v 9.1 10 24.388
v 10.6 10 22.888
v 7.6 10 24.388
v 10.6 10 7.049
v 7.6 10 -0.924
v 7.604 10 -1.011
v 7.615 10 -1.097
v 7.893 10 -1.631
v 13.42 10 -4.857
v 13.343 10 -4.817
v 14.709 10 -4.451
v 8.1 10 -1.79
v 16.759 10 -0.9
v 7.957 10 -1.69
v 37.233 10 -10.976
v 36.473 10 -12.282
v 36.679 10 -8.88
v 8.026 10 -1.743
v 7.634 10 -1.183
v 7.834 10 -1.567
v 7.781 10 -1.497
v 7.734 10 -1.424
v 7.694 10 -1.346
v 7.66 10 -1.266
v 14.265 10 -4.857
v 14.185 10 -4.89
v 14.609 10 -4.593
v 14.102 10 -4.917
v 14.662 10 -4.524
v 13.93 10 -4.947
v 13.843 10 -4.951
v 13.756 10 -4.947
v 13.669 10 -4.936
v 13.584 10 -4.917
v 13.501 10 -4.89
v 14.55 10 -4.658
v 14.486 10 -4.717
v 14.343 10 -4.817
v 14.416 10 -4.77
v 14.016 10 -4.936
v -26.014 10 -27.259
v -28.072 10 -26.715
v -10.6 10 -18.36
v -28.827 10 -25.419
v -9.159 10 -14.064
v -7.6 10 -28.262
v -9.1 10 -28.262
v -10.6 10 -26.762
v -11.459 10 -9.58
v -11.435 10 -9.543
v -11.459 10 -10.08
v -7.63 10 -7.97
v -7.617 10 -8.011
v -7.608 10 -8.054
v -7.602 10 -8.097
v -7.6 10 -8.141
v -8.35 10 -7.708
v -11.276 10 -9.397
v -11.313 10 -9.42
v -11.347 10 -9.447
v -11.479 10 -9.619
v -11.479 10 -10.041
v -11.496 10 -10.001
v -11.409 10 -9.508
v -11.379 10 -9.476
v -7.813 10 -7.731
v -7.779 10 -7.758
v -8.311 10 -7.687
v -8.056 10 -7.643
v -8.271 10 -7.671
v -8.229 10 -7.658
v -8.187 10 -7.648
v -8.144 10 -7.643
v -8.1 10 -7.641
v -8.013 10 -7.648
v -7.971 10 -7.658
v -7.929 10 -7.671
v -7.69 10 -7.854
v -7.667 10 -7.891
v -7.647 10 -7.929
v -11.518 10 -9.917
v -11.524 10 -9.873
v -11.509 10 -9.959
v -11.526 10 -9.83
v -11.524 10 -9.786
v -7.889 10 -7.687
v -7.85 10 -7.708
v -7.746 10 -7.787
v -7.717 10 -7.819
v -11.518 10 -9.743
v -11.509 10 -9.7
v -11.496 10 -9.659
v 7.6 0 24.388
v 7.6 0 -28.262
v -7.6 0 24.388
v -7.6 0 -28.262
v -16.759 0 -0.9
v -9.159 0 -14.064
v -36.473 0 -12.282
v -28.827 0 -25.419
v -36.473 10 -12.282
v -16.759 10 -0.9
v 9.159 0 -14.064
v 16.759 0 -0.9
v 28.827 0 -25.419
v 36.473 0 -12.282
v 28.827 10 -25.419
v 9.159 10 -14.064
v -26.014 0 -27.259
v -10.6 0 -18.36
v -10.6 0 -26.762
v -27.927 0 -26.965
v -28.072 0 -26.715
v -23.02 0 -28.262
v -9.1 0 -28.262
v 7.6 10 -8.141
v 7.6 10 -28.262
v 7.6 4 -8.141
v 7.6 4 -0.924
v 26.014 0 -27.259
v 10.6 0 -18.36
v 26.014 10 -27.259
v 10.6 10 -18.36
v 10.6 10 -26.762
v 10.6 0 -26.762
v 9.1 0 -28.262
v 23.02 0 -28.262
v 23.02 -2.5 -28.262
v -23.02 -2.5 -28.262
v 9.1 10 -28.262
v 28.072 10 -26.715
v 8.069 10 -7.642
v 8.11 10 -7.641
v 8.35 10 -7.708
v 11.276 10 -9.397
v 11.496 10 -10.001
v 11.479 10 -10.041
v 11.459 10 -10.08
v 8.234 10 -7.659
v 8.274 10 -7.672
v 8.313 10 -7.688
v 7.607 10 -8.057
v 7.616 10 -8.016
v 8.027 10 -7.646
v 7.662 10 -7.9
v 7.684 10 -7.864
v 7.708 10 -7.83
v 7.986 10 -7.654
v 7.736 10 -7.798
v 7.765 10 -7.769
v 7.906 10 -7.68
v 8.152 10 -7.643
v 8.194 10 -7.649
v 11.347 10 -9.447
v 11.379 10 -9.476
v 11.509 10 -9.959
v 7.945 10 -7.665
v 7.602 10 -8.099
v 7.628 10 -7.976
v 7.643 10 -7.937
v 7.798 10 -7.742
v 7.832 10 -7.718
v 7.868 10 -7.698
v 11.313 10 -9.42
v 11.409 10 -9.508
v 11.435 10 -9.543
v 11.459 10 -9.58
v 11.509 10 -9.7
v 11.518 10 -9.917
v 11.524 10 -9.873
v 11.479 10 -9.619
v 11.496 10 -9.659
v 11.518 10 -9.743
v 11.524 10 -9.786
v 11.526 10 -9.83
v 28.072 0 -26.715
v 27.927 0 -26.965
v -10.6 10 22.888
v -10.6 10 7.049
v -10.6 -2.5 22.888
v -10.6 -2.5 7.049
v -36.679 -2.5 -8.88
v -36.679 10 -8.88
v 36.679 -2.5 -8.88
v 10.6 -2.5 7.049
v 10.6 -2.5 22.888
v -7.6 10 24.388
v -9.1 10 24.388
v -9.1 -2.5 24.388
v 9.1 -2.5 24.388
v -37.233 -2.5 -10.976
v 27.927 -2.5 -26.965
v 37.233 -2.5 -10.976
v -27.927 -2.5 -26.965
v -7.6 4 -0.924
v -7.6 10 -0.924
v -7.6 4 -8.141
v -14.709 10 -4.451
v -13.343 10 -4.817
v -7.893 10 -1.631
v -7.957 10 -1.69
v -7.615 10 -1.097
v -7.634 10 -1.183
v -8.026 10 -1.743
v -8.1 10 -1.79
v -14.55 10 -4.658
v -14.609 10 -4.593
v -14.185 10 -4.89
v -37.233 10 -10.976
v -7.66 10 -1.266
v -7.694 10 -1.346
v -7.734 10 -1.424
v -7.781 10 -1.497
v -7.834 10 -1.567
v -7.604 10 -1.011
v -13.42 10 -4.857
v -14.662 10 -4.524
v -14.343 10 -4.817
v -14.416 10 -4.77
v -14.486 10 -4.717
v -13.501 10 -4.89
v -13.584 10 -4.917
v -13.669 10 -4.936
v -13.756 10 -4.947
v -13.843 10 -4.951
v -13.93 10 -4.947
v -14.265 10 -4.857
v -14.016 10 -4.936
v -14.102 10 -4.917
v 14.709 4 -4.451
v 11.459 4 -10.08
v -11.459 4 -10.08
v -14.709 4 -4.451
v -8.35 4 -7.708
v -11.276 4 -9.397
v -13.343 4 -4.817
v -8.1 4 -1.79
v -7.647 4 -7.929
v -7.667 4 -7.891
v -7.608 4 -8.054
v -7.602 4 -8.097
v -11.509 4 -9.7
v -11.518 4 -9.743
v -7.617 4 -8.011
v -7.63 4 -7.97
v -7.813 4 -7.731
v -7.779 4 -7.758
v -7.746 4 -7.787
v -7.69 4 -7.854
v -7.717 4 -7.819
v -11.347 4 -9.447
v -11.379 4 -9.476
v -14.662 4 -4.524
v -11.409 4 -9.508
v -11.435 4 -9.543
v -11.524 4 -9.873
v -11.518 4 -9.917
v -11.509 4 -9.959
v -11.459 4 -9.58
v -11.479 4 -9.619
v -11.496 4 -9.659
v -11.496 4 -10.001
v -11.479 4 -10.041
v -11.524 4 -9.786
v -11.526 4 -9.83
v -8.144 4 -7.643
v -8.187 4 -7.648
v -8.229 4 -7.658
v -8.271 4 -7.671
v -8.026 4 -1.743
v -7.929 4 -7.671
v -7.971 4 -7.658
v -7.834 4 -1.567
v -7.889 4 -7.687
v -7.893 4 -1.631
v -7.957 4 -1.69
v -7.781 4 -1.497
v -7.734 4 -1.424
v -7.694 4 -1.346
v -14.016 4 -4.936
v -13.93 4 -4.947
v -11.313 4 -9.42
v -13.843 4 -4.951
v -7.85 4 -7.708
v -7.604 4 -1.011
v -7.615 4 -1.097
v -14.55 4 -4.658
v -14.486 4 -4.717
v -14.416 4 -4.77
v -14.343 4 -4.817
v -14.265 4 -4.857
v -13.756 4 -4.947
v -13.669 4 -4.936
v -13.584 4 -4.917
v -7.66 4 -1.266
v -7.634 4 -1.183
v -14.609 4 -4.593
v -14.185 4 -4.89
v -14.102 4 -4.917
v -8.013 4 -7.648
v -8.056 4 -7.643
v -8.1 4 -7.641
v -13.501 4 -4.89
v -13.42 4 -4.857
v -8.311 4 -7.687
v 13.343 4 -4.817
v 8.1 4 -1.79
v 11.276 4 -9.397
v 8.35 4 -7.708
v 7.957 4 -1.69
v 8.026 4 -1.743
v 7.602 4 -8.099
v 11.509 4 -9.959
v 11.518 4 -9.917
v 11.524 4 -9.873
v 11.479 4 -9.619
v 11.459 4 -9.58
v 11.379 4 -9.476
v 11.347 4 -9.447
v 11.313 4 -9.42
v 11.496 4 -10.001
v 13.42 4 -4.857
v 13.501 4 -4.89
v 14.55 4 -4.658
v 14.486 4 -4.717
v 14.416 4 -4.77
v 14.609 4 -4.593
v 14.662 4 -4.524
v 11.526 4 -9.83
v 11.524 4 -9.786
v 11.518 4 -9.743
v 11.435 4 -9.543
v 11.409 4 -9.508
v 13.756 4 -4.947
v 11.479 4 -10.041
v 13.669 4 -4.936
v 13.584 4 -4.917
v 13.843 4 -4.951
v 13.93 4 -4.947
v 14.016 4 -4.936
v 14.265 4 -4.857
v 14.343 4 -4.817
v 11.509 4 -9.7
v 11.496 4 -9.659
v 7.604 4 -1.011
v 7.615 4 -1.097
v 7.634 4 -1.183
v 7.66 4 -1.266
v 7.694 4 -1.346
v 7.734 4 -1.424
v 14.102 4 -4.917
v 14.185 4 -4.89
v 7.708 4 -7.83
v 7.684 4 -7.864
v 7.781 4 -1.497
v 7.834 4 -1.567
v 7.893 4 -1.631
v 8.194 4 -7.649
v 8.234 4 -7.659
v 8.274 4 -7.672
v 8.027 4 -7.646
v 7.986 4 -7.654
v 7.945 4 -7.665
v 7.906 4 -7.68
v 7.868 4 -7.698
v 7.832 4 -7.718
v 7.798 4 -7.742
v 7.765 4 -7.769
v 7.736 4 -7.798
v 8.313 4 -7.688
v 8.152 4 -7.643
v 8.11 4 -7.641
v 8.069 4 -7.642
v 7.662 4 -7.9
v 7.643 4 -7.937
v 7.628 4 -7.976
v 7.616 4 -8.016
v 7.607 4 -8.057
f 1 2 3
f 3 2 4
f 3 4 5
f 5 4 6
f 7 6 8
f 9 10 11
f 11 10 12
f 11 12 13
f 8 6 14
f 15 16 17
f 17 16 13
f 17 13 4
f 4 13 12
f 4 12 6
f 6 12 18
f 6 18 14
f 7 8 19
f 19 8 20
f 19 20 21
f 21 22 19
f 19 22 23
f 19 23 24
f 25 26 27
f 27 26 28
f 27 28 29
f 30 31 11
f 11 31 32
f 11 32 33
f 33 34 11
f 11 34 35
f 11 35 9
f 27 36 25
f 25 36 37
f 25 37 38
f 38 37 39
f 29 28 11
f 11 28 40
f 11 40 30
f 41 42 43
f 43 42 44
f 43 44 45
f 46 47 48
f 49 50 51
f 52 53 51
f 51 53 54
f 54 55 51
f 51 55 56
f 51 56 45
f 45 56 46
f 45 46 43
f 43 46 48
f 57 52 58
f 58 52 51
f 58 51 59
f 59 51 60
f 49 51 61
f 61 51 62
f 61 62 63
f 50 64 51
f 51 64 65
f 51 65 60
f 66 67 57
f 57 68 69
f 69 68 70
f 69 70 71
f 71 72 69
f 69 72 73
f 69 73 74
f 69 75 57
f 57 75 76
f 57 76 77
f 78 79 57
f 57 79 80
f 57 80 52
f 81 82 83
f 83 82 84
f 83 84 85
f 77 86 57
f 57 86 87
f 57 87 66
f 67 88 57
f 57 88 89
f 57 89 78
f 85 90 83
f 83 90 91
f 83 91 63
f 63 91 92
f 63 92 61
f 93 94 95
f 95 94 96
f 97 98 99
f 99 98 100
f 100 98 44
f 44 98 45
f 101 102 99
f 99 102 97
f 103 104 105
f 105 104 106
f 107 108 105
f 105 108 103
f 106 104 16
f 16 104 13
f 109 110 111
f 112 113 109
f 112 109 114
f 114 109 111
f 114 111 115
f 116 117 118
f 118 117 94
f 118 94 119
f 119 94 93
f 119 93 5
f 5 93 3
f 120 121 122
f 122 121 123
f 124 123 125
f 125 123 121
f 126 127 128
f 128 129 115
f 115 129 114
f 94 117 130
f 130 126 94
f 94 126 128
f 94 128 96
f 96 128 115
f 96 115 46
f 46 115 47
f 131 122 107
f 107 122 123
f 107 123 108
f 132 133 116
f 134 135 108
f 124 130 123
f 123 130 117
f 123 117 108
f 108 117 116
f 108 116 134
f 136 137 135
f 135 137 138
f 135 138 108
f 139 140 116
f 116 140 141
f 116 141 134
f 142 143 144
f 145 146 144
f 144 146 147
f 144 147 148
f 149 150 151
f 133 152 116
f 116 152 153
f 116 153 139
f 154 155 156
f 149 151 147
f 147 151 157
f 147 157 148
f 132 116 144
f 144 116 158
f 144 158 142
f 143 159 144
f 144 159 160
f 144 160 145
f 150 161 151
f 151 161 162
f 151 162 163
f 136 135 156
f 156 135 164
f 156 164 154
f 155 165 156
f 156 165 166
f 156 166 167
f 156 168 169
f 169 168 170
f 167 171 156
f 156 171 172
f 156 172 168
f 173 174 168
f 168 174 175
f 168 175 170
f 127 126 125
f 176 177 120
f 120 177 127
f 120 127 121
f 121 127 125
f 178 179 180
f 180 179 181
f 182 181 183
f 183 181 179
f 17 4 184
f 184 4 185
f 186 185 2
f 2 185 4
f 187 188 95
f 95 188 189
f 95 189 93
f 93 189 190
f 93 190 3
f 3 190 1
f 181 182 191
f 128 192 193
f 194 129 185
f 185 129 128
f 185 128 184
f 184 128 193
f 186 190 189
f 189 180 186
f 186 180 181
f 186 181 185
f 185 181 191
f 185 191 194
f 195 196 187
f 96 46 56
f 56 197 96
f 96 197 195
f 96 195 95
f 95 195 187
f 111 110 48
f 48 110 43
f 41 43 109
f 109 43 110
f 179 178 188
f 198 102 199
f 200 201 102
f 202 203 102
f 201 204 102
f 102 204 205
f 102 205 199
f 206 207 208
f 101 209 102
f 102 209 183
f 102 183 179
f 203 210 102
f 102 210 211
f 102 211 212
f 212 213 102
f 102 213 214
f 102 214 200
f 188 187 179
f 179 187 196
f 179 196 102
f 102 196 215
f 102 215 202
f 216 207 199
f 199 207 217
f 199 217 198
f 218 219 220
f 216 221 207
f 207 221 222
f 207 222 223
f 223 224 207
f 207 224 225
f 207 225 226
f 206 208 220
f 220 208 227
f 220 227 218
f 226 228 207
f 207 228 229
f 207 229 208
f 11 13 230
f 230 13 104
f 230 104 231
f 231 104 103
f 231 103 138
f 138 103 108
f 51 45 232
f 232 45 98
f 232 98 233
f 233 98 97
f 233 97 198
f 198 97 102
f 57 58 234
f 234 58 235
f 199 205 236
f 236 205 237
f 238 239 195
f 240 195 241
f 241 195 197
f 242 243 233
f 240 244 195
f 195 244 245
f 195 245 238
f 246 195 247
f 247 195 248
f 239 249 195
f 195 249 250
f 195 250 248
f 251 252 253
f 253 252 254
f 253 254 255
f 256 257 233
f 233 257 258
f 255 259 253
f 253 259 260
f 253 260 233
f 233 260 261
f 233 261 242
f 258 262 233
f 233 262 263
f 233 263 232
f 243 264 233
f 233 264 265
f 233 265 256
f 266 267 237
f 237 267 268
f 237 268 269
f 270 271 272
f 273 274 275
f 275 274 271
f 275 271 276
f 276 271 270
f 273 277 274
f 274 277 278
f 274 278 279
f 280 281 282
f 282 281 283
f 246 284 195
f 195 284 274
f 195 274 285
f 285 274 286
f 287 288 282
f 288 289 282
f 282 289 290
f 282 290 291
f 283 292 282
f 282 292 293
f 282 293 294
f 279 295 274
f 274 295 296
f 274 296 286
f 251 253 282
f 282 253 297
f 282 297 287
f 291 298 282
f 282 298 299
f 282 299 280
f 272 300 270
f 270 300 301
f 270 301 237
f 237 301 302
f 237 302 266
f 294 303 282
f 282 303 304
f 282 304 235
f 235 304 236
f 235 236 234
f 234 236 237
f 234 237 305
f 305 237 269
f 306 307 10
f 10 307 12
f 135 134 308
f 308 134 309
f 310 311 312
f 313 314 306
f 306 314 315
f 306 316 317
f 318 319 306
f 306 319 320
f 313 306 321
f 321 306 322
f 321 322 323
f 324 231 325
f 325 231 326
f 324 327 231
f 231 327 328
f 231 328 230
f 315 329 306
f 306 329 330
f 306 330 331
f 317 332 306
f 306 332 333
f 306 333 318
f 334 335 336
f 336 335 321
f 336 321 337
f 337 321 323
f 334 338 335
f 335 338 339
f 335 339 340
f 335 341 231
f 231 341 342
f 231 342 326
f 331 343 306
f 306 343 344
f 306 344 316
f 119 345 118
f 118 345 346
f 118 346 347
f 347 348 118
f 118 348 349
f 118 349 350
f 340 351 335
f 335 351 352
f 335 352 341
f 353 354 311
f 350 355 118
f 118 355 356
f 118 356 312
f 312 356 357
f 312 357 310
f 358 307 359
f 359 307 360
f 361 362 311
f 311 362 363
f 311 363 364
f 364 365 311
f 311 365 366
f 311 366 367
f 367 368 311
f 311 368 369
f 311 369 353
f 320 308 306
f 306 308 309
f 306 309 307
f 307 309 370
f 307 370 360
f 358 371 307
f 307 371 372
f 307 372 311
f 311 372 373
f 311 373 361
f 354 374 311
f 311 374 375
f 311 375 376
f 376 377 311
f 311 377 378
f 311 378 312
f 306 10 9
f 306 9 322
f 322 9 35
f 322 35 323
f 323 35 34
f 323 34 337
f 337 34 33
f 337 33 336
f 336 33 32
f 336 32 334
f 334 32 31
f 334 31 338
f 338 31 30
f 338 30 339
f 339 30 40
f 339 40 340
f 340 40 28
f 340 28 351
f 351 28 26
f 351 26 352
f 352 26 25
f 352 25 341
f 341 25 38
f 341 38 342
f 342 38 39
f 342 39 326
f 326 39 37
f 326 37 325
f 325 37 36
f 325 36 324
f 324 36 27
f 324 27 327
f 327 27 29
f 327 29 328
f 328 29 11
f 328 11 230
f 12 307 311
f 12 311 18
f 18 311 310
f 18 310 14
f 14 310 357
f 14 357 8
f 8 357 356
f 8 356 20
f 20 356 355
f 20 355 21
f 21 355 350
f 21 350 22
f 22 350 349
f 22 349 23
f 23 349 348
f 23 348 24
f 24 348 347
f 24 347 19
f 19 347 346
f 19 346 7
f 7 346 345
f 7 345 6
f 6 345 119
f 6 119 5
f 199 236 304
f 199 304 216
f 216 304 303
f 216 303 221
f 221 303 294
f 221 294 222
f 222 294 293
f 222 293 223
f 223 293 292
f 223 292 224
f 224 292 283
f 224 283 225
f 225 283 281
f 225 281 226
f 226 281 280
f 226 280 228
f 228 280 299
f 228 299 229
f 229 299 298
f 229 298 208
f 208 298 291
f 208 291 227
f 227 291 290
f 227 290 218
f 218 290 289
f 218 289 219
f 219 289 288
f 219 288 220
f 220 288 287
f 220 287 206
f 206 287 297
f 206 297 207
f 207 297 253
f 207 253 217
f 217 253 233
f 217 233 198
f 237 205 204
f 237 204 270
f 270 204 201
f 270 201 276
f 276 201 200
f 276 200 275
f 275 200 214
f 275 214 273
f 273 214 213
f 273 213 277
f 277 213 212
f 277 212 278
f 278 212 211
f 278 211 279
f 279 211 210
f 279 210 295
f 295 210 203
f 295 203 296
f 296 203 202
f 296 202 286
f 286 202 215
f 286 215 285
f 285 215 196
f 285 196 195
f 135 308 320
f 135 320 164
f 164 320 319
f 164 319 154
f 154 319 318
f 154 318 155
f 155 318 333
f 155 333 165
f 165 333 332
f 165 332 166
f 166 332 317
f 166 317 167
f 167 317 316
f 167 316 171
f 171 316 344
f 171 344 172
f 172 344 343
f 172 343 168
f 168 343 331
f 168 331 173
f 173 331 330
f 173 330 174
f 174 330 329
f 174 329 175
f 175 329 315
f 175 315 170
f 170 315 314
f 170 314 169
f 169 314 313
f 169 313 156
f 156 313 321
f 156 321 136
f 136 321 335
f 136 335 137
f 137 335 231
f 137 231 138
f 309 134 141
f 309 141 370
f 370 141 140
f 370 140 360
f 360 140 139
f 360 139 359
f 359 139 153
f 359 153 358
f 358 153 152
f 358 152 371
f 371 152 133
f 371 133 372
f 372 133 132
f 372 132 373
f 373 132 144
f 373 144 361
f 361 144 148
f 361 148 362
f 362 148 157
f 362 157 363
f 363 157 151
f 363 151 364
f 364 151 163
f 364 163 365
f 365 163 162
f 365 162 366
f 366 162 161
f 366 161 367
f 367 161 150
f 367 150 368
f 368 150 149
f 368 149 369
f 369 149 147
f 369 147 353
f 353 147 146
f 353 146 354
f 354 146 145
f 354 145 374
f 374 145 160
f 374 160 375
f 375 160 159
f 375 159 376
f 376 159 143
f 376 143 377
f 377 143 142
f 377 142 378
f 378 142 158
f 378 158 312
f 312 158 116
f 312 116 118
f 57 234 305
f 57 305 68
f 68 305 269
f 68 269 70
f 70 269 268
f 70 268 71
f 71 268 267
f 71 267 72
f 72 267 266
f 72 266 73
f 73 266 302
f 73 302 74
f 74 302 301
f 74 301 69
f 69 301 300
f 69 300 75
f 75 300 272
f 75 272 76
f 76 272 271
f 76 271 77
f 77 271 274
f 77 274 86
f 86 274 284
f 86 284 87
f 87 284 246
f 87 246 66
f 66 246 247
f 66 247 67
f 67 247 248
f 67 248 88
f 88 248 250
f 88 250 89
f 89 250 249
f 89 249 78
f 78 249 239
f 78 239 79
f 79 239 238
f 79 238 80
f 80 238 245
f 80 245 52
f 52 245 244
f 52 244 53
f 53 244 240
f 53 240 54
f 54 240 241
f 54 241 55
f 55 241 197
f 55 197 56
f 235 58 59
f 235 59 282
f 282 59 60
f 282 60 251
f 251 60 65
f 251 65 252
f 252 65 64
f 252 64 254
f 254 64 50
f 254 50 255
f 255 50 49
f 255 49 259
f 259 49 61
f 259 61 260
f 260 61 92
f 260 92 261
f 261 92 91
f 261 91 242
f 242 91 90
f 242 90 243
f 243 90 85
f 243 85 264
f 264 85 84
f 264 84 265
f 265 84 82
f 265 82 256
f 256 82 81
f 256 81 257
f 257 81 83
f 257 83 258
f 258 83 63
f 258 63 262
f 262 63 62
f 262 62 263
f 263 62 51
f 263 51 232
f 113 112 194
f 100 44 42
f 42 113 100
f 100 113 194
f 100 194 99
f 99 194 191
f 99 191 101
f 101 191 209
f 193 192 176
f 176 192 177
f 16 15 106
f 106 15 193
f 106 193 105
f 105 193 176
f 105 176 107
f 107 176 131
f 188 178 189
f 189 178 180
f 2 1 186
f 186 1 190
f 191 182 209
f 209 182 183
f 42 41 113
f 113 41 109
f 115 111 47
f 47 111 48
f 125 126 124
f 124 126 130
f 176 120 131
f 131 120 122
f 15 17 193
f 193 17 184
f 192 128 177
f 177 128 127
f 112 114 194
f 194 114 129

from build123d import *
from OCP.BRepFilletAPI import BRepFilletAPI_MakeChamfer

# Parameters (mm, degrees)
EXTRUDE_1_DEPTH     = 10
EXTRUDE_1_2_DEPTH   = 10
EXTRUDE_1_3_DEPTH   = 10
EXTRUDE_1_4_DEPTH   = 10
EXTRUDE_2_DEPTH     = 2.5
EXTRUDE_3_DEPTH     = 10
CUT_EXTRUDE_1_DEPTH = 6
FILLET_4_R          = 1
FILLET_5_R          = 0.5
CUT_EXTRUDE_2_DEPTH = 50.301485276
CHAMFER_1_SIZE      = 1.5
CHAMFER_1_SIZE2     = 1.532867746
CHAMFER_1_SIZE2_2   = 1.505273584
CHAMFER_2_SIZE      = 1.5
CHAMFER_2_SIZE2     = 4.152297663


with BuildPart() as part:
    # Эскиз1 → Бобышка-Вытянуть1 (new body)
    with BuildSketch(Plane(origin=(0, 0, 0), x_dir=(1, 0, 0), z_dir=(0, 1, 0))):
        Polygon((-7.6, 13.163586138), (-7.6, 28.261662349), (-10.6, 28.261662349), (-10.6, 18.35973856), (-27.750635095, 28.261662349), (-29.250635095, 25.663586138), align=None)
    extrude(amount=EXTRUDE_1_DEPTH)



with BuildPart() as body_2:
    # Эскиз1 → Extrude 1 2 (new body)
    with BuildSketch(Plane(origin=(0, 0, 0), x_dir=(1, 0, 0), z_dir=(0, 1, 0))):
        Polygon((-36.850635095, 12.5), (-7.6, -4.387862046), (-7.6, -24.387862046), (-10.6, -24.387862046), (-10.6, -7.048921698), (-38.414383917, 9.939787192), align=None)
    extrude(amount=EXTRUDE_1_2_DEPTH)


with BuildPart() as body_3:
    # Эскиз1 → Extrude 1 3 (new body)
    with BuildSketch(Plane(origin=(0, 0, 0), x_dir=(1, 0, 0), z_dir=(0, 1, 0))):
        Polygon((7.6, -24.387862046), (7.6, -4.387862046), (36.850635095, 12.5), (38.414383917, 9.939787192), (10.6, -7.048921698), (10.6, -24.387862046), align=None)
    extrude(amount=EXTRUDE_1_3_DEPTH)


with BuildPart() as body_4:
    # Эскиз1 → Extrude 1 4 (new body)
    with BuildSketch(Plane(origin=(0, 0, 0), x_dir=(1, 0, 0), z_dir=(0, 1, 0))):
        Polygon((29.250635095, 25.663586138), (7.6, 13.163586138), (7.6, 28.261662349), (10.6, 28.261662349), (10.6, 18.35973856), (27.750635095, 28.261662349), align=None)
    extrude(amount=EXTRUDE_1_4_DEPTH)


with BuildPart() as part_1:
    add(part.part)

    add(body_2.part)  # Бобышка-Вытянуть2 merges body 2

    add(body_3.part)  # Бобышка-Вытянуть2 merges body 3

    add(body_4.part)  # Бобышка-Вытянуть2 merges body 4
    # Эскиз2 → Бобышка-Вытянуть2 (add)
    with BuildSketch(Plane.XZ):
        Polygon((-10.6, 24.387862046), (10.6, 24.387862046), (10.6, 7.048921698), (38.414383917, -9.939787192), (27.750635095, -28.261662349), (-27.750635095, -28.261662349), (-38.414383917, -9.939787192), (-10.6, 7.048921698), align=None)
    extrude(amount=EXTRUDE_2_DEPTH)

    # Эскиз3 → Бобышка-Вытянуть3 (add)
    with BuildSketch(Plane(origin=(0, 0, 0), x_dir=(1, 0, 0), z_dir=(0, 1, 0))):
        Polygon((9.158845727, 14.063586138), (16.758845727, 0.9), (7.6, -4.387862046), (7.6, 13.163586138), align=None)
        Polygon((-7.6, -4.387862046), (-7.6, 13.163586138), (-9.158845727, 14.063586138), (-16.758845727, 0.9), align=None)
    extrude(amount=EXTRUDE_3_DEPTH)

    # Эскиз4 → Вырез-Вытянуть1 (cut)
    with BuildSketch(Plane(origin=(0, 10, 0), x_dir=(1, 0, 0), z_dir=(0, 1, 0))):
        Polygon((-15.887237696, 6.285749615), (-6.628889419, 0.940439745), (-4.128889419, 5.270566763), (-13.387237696, 10.615876634), align=None)
        Polygon((14.008406819, 10.974508794), (3.507720297, 4.911934604), (6.007720297, 0.581807585), (16.508406819, 6.644381775), align=None)
    extrude(amount=-CUT_EXTRUDE_1_DEPTH, mode=Mode.SUBTRACT)

    # Скругление4
    fillet_4_edges = [part_1.edges().sort_by_distance(p)[0] for p in [
        (-14.208845727, 7, -5.316729559),
        (14.208845727, 7, -5.316729559),
        (-7.6, 7, -1.5011107),
        (7.6, 7, -1.5011107),
    ]]
    fillet(fillet_4_edges, radius=FILLET_4_R)

    # Скругление5
    fillet_5_edges = [part_1.edges().sort_by_distance(p)[0] for p in [
        (-11.708845727, 7, -9.646856578),
        (11.708845727, 7, -9.646856578),
        (-7.6, 7, -7.274613392),
        (7.6, 7, -7.274613392),
    ]]
    fillet(fillet_5_edges, radius=FILLET_5_R)

    # Эскиз5 → Вырез-Вытянуть2 (cut, through all)
    with BuildSketch(Plane(origin=(0, 10, 0), x_dir=(1, 0, 0), z_dir=(0, 1, 0))):
        Polygon((-24.047037107, 33.630998613), (-39.832865352, 6.508644255), (-44.756690746, 10.727475508), (-28.61540602, 34.978771584), align=None)
        Polygon((24.284000657, 33.223860688), (39.70321054, 6.731410124), (44.299549415, 9.406584081), (29.808170892, 34.304885099), align=None)
    extrude(amount=-CUT_EXTRUDE_2_DEPTH, mode=Mode.SUBTRACT)

    # Фаска1: one chamfer whose edges measure the first distance from different faces: ONE call of the kernel's chamfer builder (chamfer() names one face for all edges)
    chamfer_1_edges_1 = [part_1.edges().sort_by_distance(p)[0] for p in [
        (10.6, 5, -28.261662349),
        (-10.6, 3.75, 24.387862046),
        (10.6, 3.75, 24.387862046),
        (-10.6, 5, -28.261662349),
    ]]
    chamfer_1_edges_2 = [part_1.edges().sort_by_distance(p)[0] for p in [
        (-37.987585708, 3.75, -9.679103708),
    ]]
    chamfer_1_side_2 = [part_1.faces().sort_by_distance(p)[0] for p in [
        (-28.072162886, 9.751296174, -26.715245698),
    ]]
    chamfer_1_edges_3 = [part_1.edges().sort_by_distance(p)[0] for p in [
        (-27.317619745, 5, -28.01166082),
    ]]
    chamfer_1_side_3 = [part_1.faces().sort_by_distance(p)[0] for p in [
        (-28.072162886, 9.751296174, -26.715245698),
    ]]
    chamfer_1_edges_4 = [part_1.edges().sort_by_distance(p)[0] for p in [
        (27.317619745, 5, -28.01166082),
    ]]
    chamfer_1_side_4 = [part_1.faces().sort_by_distance(p)[0] for p in [
        (28.072162886, 9.751296174, -26.715245698),
    ]]
    chamfer_1_edges_5 = [part_1.edges().sort_by_distance(p)[0] for p in [
        (37.987585708, 3.75, -9.679103708),
    ]]
    chamfer_1_side_5 = [part_1.faces().sort_by_distance(p)[0] for p in [
        (28.072162886, 9.751296174, -26.715245698),
    ]]
    chamfer_1 = BRepFilletAPI_MakeChamfer(part_1.part.solid().wrapped)
    for e in chamfer_1_edges_1:
        chamfer_1.Add(CHAMFER_1_SIZE, e.wrapped)
    for e in chamfer_1_edges_2:
        chamfer_1.Add(CHAMFER_1_SIZE, CHAMFER_1_SIZE2, e.wrapped, chamfer_1_side_2[0].wrapped)  # the first distance lies on this face
    for e in chamfer_1_edges_3:
        chamfer_1.Add(CHAMFER_1_SIZE, CHAMFER_1_SIZE2_2, e.wrapped, chamfer_1_side_3[0].wrapped)  # the first distance lies on this face
    for e in chamfer_1_edges_4:
        chamfer_1.Add(CHAMFER_1_SIZE, CHAMFER_1_SIZE2_2, e.wrapped, chamfer_1_side_4[0].wrapped)  # the first distance lies on this face
    for e in chamfer_1_edges_5:
        chamfer_1.Add(CHAMFER_1_SIZE, CHAMFER_1_SIZE2, e.wrapped, chamfer_1_side_5[0].wrapped)  # the first distance lies on this face
    add(Compound.cast(chamfer_1.Shape()), mode=Mode.REPLACE)

    # Фаска2: one chamfer whose edges measure the first distance from different faces: ONE call of the kernel's chamfer builder (chamfer() names one face for all edges)
    chamfer_2_edges_1 = [part_1.edges().sort_by_distance(p)[0] for p in [
        (-27.172113158, -1.25, -28.261662349),
    ]]
    chamfer_2_side_1 = [part_1.faces().sort_by_distance(p)[0] for p in [
        (-28.449432149, 9.764143386, -26.067042101),
    ]]
    chamfer_2_edges_2 = [part_1.edges().sort_by_distance(p)[0] for p in [
        (27.172113158, -1.25, -28.261662349),
    ]]
    chamfer_2_side_2 = [part_1.faces().sort_by_distance(p)[0] for p in [
        (28.449432149, 9.764143386, -26.067042101),
    ]]
    chamfer_2 = BRepFilletAPI_MakeChamfer(part_1.part.solid().wrapped)
    for e in chamfer_2_edges_1:
        chamfer_2.Add(CHAMFER_2_SIZE, CHAMFER_2_SIZE2, e.wrapped, chamfer_2_side_1[0].wrapped)  # the first distance lies on this face
    for e in chamfer_2_edges_2:
        chamfer_2.Add(CHAMFER_2_SIZE, CHAMFER_2_SIZE2, e.wrapped, chamfer_2_side_2[0].wrapped)  # the first distance lies on this face
    add(Compound.cast(chamfer_2.Shape()), mode=Mode.REPLACE)


solid = part_1.part
